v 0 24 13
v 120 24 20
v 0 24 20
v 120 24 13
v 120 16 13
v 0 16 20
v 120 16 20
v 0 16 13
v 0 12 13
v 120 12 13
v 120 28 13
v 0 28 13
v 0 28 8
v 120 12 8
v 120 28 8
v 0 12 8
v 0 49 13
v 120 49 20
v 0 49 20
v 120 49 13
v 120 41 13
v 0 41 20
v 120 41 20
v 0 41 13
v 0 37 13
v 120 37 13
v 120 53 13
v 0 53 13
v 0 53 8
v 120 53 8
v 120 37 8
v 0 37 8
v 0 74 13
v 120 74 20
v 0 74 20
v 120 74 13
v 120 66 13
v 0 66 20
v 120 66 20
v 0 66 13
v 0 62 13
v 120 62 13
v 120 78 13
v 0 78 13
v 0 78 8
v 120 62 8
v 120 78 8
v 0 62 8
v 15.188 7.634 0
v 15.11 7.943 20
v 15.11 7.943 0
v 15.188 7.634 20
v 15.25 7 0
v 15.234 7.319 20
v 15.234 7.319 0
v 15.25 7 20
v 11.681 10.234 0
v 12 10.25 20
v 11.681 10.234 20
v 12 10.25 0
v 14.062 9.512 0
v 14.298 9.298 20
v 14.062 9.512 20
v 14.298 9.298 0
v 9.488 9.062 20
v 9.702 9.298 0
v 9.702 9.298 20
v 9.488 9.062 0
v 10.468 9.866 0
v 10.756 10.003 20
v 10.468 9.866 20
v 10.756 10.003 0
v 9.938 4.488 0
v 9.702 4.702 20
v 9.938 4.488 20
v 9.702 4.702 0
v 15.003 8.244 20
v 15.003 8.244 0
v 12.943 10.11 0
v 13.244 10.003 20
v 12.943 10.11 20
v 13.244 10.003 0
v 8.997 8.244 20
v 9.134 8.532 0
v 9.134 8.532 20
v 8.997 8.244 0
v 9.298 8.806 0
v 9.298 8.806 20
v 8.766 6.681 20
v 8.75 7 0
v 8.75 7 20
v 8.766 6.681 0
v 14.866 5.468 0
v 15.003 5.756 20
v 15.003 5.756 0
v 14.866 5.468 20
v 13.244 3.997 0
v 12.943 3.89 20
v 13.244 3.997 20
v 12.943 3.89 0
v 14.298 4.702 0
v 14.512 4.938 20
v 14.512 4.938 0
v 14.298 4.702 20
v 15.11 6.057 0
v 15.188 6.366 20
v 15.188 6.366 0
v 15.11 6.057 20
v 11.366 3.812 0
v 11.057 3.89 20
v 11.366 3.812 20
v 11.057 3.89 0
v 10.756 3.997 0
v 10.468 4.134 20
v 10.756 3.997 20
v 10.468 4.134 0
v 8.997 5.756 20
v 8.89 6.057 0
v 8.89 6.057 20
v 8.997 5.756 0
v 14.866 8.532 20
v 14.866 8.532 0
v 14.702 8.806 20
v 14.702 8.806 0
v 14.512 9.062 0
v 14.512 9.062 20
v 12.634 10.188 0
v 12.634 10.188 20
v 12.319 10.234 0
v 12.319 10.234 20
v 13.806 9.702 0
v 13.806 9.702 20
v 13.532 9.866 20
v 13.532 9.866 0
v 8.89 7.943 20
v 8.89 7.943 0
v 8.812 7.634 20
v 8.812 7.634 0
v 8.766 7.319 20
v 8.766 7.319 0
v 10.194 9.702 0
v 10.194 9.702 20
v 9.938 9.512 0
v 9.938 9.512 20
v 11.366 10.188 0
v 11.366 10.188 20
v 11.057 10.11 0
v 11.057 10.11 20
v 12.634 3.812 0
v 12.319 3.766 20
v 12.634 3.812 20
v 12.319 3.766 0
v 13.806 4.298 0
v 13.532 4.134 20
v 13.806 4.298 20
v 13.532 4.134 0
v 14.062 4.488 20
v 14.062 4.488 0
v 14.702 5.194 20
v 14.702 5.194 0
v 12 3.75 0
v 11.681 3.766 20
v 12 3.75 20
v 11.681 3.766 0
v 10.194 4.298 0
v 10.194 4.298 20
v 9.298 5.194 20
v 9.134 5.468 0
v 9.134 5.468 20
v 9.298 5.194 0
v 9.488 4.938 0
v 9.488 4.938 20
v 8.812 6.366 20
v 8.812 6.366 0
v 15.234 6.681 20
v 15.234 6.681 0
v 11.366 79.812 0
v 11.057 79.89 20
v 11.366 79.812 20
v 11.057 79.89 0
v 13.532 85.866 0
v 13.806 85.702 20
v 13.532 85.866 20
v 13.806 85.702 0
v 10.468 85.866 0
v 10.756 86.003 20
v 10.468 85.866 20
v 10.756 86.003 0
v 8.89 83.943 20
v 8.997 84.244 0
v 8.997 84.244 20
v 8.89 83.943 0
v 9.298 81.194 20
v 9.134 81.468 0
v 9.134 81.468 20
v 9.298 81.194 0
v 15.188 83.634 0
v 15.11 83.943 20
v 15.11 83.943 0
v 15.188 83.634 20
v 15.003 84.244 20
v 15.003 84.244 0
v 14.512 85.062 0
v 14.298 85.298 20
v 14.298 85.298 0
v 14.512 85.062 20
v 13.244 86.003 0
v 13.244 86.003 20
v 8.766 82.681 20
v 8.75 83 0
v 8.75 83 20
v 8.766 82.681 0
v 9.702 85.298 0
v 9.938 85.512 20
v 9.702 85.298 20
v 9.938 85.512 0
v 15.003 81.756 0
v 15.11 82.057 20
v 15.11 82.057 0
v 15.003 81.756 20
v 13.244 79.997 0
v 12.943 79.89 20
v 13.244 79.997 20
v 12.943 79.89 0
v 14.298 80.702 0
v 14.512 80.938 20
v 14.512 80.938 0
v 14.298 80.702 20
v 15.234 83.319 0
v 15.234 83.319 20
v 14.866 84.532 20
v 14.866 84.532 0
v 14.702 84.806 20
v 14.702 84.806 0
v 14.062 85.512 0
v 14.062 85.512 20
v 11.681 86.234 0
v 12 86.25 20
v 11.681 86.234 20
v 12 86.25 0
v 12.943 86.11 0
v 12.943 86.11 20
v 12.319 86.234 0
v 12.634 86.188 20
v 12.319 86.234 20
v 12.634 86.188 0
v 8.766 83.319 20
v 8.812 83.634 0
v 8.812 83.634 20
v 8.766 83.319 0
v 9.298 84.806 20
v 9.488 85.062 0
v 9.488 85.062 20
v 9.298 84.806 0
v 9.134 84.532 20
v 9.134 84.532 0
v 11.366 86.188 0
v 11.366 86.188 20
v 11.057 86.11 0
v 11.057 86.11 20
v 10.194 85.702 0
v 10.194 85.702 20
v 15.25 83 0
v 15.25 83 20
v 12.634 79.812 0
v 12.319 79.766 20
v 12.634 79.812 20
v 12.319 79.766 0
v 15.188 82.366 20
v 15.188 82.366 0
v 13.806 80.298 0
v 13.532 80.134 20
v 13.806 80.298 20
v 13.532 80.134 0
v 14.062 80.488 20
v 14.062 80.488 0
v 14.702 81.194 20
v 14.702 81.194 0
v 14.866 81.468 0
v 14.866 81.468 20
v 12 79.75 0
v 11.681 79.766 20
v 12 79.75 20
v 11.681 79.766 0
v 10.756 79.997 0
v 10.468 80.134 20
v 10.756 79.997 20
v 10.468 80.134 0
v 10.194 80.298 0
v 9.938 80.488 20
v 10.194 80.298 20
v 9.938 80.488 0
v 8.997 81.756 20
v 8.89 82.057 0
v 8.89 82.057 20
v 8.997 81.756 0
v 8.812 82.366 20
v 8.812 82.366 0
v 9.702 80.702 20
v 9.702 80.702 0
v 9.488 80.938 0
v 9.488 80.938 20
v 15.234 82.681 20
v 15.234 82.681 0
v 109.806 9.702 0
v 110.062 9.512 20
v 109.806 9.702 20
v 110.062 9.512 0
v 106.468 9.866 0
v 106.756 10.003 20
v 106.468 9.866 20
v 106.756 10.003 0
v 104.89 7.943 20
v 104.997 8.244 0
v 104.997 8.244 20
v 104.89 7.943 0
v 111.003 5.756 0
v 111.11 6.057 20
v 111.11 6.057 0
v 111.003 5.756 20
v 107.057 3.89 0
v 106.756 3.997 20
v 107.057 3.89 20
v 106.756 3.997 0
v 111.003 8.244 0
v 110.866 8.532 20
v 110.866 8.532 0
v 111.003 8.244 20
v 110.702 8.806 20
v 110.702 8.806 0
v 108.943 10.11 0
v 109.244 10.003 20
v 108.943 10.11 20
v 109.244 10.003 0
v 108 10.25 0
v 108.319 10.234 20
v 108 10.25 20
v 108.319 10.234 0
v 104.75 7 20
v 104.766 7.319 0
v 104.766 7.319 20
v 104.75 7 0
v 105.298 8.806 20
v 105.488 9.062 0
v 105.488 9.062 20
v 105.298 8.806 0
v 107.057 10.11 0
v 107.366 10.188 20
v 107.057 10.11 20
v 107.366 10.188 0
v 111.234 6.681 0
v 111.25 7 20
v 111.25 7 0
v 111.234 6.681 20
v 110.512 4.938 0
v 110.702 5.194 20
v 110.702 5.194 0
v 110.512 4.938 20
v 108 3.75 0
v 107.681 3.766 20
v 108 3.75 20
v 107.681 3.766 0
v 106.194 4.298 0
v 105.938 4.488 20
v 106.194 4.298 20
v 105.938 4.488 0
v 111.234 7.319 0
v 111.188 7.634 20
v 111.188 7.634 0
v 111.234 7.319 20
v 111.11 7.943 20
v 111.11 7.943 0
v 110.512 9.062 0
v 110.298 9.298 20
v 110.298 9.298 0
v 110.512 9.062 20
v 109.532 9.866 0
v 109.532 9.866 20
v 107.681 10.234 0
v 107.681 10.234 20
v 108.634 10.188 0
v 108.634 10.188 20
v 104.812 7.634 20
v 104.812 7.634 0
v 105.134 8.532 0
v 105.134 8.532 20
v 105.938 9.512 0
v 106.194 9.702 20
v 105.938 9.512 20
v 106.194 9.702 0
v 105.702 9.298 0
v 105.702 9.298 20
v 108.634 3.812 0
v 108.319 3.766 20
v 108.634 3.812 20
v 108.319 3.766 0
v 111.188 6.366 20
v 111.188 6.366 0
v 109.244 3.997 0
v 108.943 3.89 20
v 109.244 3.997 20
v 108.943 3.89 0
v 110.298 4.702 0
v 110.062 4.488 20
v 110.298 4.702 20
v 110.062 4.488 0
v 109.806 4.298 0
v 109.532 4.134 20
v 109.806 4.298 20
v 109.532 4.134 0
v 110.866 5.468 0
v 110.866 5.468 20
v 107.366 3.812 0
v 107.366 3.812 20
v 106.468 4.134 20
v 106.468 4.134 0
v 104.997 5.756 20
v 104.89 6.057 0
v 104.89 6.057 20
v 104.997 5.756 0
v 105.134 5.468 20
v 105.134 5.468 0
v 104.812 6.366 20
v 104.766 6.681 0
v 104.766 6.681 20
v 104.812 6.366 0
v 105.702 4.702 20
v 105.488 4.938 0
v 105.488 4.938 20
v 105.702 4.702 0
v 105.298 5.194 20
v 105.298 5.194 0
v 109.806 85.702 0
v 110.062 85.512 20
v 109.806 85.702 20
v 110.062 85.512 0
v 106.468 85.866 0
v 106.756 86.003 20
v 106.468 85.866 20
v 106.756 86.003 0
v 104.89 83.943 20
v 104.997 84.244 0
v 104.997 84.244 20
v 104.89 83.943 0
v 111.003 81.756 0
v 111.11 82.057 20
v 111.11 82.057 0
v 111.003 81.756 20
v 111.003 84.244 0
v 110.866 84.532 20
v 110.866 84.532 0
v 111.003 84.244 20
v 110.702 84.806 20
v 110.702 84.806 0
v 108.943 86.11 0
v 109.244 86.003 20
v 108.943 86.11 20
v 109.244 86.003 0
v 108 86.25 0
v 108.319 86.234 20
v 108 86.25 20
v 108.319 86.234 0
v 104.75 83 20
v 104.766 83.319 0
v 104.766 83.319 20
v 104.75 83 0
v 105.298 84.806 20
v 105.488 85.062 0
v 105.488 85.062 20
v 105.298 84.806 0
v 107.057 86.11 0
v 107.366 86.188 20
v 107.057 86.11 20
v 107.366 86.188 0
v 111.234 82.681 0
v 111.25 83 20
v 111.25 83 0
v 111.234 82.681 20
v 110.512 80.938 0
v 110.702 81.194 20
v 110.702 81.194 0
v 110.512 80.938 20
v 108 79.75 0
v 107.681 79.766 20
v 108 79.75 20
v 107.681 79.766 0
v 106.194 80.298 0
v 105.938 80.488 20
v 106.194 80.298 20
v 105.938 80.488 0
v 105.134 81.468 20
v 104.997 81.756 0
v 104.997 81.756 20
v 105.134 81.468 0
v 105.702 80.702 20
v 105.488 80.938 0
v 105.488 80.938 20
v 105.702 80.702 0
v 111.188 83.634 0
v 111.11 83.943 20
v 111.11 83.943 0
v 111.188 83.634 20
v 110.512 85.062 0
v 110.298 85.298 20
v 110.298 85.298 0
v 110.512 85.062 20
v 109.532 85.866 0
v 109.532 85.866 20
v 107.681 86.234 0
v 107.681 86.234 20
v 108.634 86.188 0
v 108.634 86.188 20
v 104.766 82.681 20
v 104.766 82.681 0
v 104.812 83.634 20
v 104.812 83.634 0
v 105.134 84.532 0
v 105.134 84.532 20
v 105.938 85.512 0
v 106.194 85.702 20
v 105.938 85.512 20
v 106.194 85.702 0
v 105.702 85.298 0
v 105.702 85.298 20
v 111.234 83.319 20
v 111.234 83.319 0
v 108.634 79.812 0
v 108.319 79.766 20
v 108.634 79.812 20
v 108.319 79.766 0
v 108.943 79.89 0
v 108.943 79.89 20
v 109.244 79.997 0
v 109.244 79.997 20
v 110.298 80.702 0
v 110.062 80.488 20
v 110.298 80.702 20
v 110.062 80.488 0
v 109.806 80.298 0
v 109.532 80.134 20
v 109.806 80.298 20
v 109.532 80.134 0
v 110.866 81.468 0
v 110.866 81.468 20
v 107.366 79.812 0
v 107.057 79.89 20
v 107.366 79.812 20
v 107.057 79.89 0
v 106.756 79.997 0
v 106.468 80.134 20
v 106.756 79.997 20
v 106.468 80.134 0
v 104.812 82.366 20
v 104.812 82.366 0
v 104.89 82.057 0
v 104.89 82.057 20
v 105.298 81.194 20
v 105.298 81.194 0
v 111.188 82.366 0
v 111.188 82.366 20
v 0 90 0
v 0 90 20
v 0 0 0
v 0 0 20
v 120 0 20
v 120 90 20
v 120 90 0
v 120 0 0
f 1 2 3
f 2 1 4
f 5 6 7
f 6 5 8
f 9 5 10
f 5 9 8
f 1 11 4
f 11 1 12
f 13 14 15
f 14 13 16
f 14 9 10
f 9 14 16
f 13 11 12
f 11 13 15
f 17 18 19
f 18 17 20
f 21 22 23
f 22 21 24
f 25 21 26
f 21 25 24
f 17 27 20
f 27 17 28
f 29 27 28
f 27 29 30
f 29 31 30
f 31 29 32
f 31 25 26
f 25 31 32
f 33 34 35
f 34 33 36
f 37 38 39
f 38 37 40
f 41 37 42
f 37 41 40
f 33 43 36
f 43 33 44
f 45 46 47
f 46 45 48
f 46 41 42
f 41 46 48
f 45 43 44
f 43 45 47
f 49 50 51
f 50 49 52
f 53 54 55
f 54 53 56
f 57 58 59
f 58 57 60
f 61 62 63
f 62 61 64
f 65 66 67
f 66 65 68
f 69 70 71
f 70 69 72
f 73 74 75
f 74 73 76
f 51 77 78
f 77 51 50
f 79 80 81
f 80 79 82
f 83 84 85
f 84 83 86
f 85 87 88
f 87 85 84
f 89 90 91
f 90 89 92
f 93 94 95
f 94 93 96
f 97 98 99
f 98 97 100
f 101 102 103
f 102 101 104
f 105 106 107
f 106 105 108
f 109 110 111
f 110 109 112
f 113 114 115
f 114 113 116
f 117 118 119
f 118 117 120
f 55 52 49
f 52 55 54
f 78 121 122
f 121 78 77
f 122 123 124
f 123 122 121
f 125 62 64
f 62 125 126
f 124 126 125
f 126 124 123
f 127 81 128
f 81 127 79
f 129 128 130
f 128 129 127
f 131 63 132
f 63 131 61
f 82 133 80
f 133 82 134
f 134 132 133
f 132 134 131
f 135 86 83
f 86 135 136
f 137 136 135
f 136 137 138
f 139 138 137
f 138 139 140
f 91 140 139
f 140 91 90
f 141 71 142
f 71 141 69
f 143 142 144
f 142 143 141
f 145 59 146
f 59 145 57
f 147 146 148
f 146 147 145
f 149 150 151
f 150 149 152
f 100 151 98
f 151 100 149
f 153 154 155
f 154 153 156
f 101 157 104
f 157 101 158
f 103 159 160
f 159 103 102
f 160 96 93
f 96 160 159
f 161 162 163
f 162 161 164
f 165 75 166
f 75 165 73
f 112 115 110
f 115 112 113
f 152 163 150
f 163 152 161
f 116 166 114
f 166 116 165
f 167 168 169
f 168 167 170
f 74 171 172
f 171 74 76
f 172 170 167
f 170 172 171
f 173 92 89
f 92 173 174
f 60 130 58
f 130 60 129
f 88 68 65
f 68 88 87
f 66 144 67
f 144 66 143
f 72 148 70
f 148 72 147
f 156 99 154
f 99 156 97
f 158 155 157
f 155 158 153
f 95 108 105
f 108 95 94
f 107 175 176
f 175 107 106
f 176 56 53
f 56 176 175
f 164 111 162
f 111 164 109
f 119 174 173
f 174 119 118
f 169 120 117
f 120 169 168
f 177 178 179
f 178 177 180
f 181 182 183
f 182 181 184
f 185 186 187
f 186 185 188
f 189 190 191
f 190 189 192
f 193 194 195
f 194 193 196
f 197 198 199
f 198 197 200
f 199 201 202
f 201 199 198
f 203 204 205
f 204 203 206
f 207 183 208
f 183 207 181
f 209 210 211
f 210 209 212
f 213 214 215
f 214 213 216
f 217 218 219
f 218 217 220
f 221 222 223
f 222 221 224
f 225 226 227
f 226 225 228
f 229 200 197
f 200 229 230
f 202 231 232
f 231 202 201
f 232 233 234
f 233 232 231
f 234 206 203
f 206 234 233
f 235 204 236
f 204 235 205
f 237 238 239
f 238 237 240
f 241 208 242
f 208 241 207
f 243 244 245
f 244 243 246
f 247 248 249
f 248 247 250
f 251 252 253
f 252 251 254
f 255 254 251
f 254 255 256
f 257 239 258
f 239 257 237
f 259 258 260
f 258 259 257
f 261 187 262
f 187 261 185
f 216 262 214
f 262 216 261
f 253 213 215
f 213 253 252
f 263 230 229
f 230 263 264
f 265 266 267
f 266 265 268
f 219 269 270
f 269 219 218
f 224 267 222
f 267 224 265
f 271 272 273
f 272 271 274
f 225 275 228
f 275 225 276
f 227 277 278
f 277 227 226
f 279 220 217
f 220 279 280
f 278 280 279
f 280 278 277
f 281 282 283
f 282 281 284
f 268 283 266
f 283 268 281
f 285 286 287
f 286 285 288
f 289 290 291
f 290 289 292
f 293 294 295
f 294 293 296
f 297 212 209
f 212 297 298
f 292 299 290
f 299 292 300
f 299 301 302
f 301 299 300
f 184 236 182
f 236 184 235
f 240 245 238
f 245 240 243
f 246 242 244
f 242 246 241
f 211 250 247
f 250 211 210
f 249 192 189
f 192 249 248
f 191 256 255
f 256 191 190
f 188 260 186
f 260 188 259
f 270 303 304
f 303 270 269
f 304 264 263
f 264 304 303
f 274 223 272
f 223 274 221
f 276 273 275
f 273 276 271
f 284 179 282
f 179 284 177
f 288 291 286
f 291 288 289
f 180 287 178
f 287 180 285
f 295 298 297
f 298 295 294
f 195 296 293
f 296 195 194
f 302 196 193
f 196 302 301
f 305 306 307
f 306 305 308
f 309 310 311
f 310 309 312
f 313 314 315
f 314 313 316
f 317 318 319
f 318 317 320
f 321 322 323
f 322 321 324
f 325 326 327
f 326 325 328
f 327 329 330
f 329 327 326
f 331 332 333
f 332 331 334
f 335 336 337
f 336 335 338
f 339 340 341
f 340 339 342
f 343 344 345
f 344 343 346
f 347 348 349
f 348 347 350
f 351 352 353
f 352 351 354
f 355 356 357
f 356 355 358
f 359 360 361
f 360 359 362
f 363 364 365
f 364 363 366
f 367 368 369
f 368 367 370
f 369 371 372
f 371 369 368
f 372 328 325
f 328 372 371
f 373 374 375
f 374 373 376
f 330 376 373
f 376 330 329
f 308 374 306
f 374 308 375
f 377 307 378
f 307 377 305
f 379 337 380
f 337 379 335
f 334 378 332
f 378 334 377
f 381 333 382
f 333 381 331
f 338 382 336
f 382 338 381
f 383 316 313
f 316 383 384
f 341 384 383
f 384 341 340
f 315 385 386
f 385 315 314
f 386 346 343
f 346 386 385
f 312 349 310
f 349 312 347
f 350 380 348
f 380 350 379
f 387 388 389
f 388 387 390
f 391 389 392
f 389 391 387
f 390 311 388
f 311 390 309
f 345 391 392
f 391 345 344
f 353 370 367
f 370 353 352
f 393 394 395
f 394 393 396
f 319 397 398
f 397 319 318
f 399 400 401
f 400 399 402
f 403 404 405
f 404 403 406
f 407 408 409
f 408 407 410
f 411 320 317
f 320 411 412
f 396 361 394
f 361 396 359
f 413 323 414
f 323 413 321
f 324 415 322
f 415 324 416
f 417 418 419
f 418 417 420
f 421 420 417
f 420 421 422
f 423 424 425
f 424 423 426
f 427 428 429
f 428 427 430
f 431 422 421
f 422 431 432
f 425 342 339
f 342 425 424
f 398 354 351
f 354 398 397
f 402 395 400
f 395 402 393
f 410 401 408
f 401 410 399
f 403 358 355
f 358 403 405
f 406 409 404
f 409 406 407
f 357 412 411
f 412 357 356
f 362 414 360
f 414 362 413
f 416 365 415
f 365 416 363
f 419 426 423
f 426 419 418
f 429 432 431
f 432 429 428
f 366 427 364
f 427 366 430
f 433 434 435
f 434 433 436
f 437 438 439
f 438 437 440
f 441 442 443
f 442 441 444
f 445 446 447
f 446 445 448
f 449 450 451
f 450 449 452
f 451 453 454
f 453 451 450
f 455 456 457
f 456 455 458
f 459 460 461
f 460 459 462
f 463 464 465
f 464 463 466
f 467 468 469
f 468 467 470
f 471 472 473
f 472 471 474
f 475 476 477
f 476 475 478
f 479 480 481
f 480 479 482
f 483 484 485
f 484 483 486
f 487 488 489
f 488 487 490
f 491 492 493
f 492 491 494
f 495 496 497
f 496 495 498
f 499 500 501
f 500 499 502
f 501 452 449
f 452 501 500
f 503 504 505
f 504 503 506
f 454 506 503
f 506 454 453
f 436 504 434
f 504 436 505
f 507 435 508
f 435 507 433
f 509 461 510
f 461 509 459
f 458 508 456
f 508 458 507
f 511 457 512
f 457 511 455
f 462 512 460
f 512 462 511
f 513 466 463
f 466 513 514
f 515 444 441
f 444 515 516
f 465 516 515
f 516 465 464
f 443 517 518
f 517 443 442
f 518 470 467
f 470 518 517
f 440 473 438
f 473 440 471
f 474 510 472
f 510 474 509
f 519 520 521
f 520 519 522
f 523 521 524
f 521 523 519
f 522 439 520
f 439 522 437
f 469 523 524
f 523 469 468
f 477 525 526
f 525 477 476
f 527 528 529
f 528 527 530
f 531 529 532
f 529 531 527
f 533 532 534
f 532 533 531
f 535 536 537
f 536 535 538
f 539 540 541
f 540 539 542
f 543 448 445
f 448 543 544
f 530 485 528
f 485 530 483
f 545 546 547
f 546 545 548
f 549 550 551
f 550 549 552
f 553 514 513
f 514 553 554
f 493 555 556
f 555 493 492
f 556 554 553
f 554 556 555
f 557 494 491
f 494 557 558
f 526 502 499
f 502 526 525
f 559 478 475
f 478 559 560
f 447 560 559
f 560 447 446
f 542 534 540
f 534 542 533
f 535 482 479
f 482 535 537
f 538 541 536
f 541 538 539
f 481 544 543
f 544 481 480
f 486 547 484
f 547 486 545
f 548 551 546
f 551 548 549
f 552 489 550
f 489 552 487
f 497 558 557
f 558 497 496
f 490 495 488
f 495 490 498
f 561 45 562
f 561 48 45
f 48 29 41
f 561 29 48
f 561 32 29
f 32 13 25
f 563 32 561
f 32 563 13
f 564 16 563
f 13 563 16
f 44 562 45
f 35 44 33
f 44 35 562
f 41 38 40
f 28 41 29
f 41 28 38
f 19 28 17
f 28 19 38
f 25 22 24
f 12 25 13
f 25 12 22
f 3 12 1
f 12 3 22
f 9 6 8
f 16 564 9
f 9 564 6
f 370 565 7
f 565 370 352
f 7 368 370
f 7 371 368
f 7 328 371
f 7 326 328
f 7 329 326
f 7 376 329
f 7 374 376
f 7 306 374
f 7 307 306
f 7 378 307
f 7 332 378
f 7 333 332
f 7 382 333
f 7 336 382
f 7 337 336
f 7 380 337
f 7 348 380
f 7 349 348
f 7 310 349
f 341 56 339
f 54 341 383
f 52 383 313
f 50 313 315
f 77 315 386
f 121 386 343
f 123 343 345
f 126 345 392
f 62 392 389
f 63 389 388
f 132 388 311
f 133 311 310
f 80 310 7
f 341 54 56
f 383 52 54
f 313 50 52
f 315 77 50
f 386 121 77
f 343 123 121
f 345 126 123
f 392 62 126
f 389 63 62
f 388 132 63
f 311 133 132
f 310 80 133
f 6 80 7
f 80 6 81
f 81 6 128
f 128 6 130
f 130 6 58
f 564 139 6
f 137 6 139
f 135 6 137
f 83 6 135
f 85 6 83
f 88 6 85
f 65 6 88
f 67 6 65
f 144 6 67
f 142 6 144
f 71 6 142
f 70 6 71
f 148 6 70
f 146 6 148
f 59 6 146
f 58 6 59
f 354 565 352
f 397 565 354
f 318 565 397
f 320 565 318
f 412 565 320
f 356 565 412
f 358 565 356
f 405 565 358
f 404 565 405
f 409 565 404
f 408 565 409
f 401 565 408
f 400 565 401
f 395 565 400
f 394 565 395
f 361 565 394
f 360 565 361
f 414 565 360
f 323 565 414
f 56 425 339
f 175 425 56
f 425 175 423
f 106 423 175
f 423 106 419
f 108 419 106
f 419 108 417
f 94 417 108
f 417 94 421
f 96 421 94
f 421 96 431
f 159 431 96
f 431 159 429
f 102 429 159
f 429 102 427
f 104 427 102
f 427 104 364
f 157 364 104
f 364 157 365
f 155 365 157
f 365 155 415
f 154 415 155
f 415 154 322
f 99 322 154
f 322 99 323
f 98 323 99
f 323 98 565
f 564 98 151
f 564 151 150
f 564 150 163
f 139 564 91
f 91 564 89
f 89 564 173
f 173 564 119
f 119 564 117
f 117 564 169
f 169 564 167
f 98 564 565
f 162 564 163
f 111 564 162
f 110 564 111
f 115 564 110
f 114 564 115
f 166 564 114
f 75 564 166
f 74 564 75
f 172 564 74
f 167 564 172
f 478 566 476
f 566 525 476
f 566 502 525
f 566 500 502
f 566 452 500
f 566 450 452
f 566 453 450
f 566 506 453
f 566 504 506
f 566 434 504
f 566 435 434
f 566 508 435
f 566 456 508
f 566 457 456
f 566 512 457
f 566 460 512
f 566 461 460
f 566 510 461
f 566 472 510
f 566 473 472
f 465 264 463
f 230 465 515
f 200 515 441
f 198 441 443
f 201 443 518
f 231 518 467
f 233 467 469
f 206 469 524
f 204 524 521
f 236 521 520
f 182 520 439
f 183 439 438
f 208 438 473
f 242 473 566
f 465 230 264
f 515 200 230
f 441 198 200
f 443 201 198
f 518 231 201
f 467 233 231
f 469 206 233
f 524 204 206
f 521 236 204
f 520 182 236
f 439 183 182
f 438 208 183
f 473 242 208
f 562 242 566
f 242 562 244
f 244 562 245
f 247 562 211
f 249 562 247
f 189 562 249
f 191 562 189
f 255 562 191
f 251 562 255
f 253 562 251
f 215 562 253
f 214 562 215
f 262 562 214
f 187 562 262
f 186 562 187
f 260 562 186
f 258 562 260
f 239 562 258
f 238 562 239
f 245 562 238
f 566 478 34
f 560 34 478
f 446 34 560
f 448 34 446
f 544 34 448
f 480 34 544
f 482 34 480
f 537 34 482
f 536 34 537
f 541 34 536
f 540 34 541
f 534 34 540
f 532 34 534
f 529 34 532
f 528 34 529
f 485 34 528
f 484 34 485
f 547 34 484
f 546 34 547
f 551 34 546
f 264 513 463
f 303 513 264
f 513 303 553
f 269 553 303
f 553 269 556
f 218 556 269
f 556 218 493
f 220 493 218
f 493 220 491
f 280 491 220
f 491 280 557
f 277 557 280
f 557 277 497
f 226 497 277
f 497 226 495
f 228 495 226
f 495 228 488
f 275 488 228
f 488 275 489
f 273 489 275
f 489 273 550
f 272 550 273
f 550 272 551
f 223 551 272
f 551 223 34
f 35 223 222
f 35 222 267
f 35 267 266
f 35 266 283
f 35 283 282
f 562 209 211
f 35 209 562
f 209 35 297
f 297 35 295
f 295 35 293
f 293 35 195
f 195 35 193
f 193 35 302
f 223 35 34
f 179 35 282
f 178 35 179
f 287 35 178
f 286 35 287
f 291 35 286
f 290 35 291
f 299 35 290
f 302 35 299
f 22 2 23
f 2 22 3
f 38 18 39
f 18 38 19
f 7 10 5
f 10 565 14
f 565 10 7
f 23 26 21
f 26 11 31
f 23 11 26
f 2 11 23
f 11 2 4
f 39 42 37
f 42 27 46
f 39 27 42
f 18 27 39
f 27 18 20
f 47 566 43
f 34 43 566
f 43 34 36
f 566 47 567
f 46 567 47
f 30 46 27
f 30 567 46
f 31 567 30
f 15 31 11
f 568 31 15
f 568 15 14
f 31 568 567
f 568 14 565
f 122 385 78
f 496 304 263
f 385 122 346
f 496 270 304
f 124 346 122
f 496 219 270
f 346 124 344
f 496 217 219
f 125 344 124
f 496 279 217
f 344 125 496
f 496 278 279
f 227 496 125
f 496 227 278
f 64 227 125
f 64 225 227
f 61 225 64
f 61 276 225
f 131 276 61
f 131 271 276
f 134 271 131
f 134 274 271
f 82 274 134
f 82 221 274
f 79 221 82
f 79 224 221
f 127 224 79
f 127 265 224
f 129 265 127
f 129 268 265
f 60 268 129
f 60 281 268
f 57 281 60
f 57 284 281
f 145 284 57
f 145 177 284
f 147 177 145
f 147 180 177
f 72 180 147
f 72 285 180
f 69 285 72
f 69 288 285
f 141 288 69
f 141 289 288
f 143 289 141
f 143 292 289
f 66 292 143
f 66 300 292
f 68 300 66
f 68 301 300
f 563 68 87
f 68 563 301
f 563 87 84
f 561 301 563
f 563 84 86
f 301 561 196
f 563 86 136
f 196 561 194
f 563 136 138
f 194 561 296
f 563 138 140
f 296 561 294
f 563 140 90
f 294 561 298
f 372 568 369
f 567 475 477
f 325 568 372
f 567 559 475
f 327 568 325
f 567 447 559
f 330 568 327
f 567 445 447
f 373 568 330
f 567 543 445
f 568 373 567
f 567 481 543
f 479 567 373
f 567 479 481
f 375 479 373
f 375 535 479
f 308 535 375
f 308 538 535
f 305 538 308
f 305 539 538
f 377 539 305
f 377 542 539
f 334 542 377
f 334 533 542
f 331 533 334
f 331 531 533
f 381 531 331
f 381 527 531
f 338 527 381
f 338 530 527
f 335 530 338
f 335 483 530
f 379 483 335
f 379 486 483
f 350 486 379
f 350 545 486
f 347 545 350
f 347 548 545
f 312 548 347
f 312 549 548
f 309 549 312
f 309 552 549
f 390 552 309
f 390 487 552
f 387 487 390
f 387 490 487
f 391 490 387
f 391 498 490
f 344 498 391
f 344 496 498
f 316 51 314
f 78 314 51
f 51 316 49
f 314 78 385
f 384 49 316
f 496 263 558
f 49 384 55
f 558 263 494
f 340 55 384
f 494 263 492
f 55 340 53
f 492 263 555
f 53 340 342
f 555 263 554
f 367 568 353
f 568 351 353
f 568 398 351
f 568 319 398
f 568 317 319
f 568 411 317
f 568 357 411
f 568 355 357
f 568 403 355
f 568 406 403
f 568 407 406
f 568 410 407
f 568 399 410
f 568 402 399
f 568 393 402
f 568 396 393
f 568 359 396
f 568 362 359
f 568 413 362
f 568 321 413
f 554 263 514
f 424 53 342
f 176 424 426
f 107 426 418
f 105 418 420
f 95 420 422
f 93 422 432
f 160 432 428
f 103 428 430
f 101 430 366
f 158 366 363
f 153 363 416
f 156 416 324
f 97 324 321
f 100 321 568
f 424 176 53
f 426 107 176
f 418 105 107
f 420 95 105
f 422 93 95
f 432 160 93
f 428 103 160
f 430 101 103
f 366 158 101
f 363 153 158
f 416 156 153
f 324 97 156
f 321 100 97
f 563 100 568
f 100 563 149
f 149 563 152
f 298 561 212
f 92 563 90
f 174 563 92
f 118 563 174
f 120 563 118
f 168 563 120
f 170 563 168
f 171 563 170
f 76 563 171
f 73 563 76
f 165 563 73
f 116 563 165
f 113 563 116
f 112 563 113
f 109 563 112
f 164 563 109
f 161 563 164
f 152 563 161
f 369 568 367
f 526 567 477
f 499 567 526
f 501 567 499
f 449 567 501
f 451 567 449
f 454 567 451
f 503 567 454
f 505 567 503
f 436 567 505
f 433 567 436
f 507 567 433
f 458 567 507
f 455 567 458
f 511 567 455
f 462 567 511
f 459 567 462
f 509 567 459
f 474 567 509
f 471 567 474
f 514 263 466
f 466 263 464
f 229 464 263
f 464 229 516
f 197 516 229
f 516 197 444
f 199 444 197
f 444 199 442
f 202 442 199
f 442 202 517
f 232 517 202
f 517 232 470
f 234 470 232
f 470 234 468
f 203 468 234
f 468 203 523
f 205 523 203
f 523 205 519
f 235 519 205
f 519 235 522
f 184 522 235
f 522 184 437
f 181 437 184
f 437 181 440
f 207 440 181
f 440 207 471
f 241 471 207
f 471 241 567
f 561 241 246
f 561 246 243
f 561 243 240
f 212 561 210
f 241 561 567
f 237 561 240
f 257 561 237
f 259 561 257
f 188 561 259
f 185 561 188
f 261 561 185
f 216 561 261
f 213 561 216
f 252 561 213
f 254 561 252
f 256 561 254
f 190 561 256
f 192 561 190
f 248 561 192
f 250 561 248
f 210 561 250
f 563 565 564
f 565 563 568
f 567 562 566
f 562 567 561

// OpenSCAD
// Original MechIntel educational model. CC0-1.0. Units: mm.
// Not a standardized or load-rated component.
$fn=96;
length=120; width=90; thickness=20; neck=8; cavity=16;
$fn=64;
difference(){
 cube([length,width,thickness]);
 for(y=[20,45,70]){
  translate([-1,y-neck/2,12]) cube([length+2,neck,9]);
  translate([-1,y-cavity/2,8]) cube([length+2,cavity,5]);
 }
 for(x=[12,108]) for(y=[7,83]) translate([x,y,-1]) cylinder(d=6.5,h=thickness+2);
}
